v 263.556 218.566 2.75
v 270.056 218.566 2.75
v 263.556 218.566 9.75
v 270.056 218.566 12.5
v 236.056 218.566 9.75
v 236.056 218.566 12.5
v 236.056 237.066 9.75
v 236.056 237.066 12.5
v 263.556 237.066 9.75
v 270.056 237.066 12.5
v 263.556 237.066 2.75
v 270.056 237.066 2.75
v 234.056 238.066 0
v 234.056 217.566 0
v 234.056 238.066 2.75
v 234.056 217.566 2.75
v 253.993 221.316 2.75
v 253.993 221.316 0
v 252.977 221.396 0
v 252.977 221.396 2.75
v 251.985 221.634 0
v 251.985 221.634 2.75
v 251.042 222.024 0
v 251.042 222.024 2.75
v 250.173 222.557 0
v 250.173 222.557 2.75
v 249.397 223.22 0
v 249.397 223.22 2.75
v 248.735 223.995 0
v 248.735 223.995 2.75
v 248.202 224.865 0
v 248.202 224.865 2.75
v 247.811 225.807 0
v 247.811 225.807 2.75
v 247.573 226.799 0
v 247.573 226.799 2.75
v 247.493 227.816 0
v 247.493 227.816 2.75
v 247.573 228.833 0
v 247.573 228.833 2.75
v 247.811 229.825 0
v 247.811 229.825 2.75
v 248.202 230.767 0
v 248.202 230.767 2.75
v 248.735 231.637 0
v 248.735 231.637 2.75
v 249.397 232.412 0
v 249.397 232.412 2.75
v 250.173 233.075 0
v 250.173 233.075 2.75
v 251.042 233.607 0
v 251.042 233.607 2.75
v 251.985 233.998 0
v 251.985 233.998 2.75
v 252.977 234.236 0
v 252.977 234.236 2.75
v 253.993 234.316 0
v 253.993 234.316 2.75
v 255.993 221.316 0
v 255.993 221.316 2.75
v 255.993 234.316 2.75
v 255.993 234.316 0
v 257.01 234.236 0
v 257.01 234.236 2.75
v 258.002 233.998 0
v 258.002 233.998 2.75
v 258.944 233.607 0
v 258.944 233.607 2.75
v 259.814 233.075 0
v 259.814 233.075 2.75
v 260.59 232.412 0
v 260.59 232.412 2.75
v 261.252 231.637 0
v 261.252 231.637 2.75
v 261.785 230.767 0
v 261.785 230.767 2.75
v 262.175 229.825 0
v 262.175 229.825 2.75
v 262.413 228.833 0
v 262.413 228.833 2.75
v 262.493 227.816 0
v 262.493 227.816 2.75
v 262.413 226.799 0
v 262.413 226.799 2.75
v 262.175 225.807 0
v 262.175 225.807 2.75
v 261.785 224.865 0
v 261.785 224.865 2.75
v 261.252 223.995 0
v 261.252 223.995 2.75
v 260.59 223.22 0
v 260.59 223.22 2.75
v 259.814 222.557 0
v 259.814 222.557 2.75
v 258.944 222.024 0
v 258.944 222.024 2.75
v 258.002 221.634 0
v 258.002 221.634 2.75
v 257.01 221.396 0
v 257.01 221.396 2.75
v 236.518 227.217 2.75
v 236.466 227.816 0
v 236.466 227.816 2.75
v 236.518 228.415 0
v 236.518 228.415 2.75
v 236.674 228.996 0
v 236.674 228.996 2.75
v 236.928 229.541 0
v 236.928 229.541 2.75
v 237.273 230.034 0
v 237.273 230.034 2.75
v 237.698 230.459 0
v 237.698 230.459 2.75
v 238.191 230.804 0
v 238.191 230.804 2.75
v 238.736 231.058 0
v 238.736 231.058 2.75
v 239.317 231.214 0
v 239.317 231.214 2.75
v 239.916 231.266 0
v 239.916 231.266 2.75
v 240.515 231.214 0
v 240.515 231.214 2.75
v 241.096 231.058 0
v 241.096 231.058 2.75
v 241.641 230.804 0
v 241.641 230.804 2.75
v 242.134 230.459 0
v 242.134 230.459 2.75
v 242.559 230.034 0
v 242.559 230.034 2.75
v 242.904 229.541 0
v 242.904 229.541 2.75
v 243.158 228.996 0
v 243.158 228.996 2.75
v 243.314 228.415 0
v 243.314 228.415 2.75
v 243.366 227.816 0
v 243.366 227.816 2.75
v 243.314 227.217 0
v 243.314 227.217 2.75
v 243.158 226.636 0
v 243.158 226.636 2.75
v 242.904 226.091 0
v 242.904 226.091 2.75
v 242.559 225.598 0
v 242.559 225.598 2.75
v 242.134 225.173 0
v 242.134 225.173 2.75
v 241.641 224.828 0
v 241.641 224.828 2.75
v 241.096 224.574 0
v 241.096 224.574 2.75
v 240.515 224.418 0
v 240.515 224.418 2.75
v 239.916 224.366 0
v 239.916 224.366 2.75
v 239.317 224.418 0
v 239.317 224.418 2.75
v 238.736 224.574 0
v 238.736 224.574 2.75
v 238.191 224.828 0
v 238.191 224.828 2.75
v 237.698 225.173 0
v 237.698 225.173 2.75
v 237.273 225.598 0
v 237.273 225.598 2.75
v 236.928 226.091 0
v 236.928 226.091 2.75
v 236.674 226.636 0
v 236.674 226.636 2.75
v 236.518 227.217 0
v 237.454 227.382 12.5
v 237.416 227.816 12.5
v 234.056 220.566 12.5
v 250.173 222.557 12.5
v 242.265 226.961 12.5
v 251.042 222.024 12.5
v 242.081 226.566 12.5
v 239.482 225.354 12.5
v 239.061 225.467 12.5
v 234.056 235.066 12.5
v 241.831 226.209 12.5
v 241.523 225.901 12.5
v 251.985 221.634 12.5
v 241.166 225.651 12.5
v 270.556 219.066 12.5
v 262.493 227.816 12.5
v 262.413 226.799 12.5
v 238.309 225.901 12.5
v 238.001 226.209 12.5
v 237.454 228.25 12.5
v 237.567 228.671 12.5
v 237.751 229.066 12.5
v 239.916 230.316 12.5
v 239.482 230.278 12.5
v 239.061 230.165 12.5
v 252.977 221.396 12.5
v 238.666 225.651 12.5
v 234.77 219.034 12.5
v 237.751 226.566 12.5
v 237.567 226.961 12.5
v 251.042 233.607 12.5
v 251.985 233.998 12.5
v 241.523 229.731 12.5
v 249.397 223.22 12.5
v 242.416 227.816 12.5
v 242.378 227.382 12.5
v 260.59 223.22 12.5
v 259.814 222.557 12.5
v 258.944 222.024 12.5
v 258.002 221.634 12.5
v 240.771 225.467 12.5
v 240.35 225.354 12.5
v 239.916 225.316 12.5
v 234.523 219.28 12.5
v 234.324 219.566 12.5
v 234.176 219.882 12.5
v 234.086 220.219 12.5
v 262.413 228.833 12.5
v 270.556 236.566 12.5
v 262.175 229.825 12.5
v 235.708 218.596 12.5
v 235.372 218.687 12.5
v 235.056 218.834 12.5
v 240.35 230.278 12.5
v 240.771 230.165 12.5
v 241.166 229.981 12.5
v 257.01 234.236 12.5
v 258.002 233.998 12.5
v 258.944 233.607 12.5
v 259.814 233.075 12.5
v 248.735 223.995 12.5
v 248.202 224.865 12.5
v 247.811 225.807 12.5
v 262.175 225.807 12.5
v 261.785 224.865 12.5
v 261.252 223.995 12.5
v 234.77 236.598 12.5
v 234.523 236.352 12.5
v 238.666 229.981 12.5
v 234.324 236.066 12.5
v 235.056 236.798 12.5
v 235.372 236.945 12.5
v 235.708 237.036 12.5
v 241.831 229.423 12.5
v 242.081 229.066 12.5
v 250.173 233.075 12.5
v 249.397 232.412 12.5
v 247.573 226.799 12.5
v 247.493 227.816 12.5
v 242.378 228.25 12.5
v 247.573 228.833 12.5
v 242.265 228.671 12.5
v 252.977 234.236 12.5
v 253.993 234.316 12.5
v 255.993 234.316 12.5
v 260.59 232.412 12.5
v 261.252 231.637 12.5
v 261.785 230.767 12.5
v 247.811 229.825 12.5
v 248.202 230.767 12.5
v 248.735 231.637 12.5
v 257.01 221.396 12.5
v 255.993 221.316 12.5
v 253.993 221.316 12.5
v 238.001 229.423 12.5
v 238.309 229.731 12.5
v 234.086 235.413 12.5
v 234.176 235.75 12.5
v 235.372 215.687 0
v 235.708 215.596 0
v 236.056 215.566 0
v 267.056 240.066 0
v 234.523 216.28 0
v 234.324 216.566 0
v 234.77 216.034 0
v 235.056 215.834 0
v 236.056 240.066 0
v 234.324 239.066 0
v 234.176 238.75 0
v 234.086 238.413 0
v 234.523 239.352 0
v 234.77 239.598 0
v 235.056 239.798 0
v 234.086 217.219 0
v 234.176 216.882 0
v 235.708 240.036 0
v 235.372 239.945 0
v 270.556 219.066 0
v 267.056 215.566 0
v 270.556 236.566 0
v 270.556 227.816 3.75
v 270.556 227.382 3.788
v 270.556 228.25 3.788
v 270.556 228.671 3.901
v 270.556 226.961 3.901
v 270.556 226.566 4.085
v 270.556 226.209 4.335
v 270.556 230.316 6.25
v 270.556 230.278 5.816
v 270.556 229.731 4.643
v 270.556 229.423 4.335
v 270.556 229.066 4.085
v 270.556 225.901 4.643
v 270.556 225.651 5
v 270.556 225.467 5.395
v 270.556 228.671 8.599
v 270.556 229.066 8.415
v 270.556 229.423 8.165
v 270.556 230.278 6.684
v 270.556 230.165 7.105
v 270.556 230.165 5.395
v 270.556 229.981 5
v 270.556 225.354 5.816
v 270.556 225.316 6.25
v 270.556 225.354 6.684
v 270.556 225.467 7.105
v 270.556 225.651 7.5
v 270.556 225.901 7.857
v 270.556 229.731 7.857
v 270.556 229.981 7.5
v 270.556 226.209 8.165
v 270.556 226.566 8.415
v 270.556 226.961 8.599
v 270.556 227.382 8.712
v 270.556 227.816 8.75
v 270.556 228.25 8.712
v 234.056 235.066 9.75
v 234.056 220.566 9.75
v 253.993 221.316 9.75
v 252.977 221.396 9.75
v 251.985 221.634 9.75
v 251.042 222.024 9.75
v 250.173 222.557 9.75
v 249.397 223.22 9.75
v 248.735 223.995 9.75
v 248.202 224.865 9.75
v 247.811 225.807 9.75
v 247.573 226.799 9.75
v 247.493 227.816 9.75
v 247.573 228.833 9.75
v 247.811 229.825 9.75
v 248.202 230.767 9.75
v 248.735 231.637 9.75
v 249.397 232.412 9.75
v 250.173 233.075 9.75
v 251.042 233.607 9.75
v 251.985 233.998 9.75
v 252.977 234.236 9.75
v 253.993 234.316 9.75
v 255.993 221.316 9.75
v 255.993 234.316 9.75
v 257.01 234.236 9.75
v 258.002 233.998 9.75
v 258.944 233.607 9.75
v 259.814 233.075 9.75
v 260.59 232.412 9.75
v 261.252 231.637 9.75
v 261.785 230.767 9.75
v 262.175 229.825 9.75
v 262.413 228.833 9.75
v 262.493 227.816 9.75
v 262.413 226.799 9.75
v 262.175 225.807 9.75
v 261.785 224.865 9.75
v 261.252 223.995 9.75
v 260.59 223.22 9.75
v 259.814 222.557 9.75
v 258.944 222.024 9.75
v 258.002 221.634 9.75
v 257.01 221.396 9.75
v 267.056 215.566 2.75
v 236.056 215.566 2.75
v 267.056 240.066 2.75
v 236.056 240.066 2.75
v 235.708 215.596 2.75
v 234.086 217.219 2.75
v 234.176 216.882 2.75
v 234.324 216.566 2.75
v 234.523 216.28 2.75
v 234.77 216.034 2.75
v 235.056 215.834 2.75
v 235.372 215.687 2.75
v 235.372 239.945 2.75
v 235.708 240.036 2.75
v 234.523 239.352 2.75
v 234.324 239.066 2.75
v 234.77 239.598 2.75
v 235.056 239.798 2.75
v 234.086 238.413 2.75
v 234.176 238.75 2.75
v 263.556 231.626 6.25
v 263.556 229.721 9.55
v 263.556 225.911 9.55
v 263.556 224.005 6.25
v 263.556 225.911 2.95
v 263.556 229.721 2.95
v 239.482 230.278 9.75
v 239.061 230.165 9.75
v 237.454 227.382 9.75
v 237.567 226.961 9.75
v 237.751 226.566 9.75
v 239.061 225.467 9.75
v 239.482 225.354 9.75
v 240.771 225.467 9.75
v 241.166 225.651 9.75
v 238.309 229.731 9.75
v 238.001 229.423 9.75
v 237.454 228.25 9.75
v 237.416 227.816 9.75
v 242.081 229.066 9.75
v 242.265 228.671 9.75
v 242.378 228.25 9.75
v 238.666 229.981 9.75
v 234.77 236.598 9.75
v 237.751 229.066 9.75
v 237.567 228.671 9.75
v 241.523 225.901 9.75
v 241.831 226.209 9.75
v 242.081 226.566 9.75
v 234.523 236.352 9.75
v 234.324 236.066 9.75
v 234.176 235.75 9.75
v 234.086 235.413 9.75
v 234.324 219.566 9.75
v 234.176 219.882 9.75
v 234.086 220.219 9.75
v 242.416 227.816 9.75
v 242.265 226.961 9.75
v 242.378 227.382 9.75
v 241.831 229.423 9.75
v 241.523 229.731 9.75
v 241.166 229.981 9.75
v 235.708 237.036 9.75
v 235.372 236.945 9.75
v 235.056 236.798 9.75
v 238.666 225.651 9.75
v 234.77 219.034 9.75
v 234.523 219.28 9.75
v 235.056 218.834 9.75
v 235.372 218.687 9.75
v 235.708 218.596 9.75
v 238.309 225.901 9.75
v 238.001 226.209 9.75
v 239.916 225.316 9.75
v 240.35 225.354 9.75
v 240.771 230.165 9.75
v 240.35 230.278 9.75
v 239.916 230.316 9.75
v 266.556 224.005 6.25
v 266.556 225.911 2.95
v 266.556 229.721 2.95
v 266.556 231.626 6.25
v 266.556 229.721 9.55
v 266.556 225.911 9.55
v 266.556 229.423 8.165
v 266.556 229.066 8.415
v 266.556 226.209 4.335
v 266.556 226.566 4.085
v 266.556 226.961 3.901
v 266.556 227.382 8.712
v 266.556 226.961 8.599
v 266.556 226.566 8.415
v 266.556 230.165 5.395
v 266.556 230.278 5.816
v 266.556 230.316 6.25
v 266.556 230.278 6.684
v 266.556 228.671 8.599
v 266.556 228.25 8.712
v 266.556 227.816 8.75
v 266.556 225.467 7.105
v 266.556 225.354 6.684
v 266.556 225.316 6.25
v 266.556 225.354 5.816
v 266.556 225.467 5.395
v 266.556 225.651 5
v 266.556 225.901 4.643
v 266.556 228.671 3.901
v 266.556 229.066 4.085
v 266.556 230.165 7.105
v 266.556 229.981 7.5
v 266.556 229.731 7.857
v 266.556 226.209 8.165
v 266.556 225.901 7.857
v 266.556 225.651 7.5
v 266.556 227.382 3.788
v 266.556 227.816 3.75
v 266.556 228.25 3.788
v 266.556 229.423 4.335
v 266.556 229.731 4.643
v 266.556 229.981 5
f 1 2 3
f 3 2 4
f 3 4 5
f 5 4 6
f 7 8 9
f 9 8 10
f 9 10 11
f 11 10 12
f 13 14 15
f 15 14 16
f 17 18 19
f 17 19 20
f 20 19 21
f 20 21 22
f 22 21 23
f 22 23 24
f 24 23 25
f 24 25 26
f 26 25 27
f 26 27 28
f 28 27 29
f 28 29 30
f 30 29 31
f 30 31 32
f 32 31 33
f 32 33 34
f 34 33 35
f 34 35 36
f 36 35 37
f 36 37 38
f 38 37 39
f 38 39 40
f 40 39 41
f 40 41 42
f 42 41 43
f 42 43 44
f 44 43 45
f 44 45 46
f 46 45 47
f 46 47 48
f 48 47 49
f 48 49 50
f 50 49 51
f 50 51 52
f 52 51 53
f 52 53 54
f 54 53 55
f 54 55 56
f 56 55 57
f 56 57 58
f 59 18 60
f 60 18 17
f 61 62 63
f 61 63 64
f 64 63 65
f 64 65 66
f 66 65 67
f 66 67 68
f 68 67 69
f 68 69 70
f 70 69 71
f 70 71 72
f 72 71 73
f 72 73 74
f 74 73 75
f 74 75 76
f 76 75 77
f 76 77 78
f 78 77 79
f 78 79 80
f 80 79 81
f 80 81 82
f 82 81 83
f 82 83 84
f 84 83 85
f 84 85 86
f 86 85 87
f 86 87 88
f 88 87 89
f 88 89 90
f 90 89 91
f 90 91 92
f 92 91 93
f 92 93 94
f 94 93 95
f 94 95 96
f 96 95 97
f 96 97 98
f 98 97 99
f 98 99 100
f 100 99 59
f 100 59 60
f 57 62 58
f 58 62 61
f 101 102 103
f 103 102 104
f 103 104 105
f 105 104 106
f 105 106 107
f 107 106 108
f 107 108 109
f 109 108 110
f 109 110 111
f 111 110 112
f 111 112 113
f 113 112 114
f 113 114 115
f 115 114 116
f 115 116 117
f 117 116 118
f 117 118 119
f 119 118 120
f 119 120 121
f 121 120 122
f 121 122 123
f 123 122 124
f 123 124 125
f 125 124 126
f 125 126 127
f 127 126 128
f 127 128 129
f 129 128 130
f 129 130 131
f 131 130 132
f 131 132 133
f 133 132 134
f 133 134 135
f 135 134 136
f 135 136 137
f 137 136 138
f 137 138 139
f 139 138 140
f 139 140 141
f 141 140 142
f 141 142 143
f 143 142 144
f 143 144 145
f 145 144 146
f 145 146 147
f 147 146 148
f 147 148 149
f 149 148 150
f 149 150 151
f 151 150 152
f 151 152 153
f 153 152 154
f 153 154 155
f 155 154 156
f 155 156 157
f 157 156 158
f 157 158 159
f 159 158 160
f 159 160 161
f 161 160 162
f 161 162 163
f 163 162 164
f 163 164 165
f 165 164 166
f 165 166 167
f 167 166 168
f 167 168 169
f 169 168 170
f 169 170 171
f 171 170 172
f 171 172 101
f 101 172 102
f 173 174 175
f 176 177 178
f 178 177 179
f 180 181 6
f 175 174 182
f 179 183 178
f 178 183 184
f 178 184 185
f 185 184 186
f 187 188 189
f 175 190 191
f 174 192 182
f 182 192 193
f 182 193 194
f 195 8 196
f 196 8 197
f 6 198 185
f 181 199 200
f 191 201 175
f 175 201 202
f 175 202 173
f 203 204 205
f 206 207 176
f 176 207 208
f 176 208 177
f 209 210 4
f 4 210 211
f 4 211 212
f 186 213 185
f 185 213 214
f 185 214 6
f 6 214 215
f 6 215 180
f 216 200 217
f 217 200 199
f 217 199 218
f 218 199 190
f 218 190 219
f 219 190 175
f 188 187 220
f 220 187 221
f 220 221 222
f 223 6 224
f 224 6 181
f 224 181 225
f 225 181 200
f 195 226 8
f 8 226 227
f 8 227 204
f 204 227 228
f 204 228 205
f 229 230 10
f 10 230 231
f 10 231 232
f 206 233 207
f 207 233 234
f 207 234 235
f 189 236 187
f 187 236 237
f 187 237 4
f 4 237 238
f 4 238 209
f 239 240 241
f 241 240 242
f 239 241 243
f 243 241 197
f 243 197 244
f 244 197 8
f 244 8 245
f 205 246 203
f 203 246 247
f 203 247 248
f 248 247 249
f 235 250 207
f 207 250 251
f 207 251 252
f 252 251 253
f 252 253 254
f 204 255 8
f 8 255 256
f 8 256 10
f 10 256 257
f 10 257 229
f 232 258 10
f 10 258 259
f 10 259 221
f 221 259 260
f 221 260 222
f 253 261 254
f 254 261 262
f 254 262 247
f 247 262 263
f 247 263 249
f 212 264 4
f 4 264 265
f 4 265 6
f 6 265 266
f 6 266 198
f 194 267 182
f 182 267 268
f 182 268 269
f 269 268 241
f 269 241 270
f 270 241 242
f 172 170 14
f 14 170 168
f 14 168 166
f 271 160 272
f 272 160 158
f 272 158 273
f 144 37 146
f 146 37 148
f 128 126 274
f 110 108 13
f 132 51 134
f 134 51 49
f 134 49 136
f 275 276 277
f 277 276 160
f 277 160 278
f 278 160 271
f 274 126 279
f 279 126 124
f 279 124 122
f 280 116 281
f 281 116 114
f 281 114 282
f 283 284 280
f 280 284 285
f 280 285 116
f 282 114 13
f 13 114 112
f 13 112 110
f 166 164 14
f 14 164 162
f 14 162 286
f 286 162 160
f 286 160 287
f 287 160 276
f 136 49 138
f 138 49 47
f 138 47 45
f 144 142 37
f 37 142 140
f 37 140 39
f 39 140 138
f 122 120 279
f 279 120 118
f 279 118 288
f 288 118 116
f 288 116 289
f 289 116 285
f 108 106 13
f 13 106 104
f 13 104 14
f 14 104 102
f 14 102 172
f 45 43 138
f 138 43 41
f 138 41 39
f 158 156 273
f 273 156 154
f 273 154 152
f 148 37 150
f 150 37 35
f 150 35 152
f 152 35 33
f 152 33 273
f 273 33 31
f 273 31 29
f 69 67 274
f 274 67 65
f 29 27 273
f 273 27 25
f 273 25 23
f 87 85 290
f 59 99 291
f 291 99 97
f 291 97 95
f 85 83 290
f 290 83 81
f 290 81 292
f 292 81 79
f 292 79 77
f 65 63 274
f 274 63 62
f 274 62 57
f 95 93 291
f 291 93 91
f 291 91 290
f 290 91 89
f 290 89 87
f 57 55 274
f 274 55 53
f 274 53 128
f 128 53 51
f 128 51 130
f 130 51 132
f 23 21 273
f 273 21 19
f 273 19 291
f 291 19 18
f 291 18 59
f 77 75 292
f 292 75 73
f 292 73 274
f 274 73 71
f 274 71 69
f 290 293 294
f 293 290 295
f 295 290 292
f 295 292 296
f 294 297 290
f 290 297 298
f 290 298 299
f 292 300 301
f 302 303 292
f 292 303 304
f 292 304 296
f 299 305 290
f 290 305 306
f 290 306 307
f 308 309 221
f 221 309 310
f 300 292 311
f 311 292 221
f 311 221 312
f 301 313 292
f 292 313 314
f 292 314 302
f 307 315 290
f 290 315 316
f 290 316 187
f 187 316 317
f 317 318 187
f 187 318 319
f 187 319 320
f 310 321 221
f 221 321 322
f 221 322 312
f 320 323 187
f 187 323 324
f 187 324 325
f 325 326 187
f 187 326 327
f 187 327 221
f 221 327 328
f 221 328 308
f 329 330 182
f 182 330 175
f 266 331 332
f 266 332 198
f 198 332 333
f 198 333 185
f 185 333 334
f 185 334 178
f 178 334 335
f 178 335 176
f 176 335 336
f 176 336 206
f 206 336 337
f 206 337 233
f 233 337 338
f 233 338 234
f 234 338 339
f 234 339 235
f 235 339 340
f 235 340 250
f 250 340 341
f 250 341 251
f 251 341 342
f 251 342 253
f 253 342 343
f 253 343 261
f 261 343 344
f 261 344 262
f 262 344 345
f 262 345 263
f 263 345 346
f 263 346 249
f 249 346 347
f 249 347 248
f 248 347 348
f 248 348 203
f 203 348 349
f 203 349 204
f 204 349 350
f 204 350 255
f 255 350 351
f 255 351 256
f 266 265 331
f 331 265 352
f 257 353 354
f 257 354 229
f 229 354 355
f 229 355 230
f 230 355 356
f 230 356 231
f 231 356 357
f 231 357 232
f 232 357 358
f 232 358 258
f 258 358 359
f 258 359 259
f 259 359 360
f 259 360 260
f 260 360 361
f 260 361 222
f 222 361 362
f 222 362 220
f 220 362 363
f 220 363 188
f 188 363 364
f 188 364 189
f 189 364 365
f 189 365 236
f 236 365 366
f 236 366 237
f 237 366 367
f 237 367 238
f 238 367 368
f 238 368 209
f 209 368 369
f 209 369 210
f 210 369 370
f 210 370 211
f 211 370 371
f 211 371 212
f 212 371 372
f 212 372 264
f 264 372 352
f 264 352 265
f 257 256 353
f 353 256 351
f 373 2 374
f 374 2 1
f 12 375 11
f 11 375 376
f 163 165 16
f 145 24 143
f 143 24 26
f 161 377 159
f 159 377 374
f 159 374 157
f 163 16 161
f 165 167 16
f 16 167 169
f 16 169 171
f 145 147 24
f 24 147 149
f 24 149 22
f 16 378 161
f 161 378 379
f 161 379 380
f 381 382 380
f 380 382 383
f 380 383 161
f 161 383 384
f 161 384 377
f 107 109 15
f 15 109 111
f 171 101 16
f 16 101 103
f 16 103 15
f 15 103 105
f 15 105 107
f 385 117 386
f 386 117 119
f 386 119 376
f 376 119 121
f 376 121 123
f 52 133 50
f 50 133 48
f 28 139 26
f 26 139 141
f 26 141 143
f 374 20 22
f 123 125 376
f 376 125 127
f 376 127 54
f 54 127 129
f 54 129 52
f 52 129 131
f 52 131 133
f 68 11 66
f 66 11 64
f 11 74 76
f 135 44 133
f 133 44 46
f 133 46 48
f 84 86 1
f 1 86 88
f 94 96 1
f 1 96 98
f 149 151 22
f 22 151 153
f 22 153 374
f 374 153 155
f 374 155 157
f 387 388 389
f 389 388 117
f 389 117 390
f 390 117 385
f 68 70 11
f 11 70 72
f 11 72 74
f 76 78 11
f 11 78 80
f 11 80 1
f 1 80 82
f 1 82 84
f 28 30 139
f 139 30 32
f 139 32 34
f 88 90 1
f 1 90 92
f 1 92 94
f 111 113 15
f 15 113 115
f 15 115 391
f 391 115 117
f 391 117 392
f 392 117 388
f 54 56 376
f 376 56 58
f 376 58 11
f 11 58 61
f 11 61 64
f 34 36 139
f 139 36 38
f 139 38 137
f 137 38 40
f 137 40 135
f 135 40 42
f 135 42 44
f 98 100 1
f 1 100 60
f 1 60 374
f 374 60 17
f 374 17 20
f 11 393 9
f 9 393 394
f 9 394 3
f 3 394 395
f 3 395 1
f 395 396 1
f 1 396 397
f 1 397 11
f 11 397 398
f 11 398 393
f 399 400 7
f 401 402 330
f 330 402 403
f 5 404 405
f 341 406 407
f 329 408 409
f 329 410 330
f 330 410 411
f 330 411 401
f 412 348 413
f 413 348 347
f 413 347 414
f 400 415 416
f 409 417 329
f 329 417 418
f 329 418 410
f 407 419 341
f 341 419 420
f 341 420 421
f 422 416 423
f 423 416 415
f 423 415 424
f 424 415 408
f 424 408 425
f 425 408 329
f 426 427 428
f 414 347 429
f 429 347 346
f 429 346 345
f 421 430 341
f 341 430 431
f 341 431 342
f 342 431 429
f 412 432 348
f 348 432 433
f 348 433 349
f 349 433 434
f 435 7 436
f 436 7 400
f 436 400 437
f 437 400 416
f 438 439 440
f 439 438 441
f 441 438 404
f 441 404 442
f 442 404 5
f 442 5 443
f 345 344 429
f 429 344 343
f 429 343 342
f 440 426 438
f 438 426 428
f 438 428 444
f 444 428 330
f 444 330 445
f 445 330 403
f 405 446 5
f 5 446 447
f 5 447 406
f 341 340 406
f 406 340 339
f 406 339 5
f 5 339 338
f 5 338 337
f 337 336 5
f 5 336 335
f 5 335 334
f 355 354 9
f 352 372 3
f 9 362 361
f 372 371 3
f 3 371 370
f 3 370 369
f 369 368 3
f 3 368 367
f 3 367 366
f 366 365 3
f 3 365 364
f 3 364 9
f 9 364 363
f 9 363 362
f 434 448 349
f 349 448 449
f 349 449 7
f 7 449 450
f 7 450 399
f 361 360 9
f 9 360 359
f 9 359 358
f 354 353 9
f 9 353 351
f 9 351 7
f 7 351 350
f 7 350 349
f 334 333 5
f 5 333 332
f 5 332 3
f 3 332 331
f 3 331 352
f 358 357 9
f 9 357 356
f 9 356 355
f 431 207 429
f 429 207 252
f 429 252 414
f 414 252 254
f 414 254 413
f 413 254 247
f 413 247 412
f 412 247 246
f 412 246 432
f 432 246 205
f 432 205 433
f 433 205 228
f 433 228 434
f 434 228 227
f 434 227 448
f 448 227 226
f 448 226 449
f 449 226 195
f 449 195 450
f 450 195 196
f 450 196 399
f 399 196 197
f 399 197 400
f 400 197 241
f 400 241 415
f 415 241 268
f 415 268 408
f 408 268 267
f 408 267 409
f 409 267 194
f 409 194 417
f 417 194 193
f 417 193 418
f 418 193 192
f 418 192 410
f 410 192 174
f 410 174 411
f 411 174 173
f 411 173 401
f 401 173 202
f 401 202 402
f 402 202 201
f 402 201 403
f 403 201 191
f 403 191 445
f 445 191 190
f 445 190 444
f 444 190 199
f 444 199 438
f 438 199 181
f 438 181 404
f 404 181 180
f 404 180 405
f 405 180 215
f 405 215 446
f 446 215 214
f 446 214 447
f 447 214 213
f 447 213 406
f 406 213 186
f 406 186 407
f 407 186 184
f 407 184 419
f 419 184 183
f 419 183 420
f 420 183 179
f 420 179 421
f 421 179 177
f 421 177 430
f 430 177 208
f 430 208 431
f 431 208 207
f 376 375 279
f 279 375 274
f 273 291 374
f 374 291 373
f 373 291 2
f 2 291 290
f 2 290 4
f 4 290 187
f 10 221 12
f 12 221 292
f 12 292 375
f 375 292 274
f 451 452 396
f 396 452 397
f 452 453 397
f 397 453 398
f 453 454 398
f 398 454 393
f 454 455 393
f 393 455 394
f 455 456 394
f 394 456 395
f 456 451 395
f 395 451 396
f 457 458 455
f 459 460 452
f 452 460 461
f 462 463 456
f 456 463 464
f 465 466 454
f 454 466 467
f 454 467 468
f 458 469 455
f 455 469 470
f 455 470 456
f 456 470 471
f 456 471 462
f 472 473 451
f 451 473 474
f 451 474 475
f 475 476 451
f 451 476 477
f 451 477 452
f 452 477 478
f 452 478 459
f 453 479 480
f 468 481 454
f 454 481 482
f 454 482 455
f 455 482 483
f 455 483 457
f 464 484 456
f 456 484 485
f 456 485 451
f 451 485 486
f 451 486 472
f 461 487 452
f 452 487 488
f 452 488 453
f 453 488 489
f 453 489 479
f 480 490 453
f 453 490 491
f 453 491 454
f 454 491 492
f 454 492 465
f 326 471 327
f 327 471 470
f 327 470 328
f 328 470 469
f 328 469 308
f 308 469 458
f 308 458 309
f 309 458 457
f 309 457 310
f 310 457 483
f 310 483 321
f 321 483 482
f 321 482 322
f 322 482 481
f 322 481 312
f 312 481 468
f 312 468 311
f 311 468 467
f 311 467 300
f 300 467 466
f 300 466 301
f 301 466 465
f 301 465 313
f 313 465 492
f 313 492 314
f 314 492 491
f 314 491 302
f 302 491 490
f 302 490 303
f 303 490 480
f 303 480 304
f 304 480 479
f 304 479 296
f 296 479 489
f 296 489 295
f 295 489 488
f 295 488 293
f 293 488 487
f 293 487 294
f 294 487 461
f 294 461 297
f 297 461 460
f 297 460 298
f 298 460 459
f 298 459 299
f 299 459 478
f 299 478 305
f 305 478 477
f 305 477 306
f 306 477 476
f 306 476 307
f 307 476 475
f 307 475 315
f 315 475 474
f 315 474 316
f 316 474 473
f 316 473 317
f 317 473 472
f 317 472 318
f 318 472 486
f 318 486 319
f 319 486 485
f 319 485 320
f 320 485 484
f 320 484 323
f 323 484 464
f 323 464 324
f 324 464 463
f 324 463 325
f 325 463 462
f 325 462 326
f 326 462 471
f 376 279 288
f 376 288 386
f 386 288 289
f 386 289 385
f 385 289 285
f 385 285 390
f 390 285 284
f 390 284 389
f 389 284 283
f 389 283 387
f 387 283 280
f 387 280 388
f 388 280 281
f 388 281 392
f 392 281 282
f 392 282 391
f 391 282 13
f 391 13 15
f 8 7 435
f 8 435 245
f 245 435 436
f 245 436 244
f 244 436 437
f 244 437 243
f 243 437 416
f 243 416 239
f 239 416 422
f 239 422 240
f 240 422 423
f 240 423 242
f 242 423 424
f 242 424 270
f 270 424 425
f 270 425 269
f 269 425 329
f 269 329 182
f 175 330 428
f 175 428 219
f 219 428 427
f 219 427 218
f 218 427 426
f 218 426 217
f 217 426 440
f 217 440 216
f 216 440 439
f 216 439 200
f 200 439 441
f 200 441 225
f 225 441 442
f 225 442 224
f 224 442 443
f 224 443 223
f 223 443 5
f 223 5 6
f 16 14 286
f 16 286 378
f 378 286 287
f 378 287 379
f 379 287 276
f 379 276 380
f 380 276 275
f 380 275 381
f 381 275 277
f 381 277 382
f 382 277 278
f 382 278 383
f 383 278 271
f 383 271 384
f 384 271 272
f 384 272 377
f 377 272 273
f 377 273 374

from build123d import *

# Parameters (mm, degrees)
SKETCH1_W           = 36.5
SKETCH1_H           = 18.5
SKETCH1_R           = 3.45
BOSS_EXTRUDE1_DEPTH = 12.5
SKETCH2_W           = 29.5
SKETCH2_H           = 7
CUT_EXTRUDE1_DEPTH  = 19.5
SKETCH3_R           = 3.45
SKETCH3_R_2         = 2.5
BOSS_EXTRUDE3_DEPTH = 2.75
SKETCH4_W           = 36.5
SKETCH4_H           = 2.75
BOSS_EXTRUDE4_DEPTH = 3
SKETCH5_W           = 36.5
SKETCH5_H           = 2.75
BOSS_EXTRUDE5_DEPTH = 3
CHAMFER1_SIZE       = 3.5
CHAMFER3_SIZE       = 3.5
CUT_EXTRUDE2_DEPTH  = 3
SKETCH7_R           = 2.5
CUT_EXTRUDE3_DEPTH  = 5
FILLET1_R           = 2


with BuildPart() as part:
    # Sketch1 → Boss-Extrude1 (new body)
    with BuildSketch(Plane.XY):
        with Locations((252.305597075, 227.81595418)):
            Rectangle(SKETCH1_W, SKETCH1_H)
        with Locations((239.915979082, 227.815953297)):
            Circle(SKETCH1_R, mode=Mode.SUBTRACT)
        with BuildLine():
            Line((253.99332378, 221.31595418), (255.99332378, 221.31595418))
            ThreePointArc((255.99332378, 221.31595418), (262.49332378, 227.81595418), (255.99332378, 234.31595418))
            Line((255.99332378, 234.31595418), (253.99332378, 234.31595418))
            ThreePointArc((253.99332378, 234.31595418), (247.49332378, 227.81595418), (253.99332378, 221.31595418))
        make_face(mode=Mode.SUBTRACT)
    extrude(amount=BOSS_EXTRUDE1_DEPTH)

    # Sketch2 → Cut-Extrude1 (cut, through all)
    with BuildSketch(Plane(origin=(0, 237.06595418, 0), x_dir=(1, 0, 0), z_dir=(0, 1, 0))):
        with Locations((248.805597075, -6.25)):
            Rectangle(SKETCH2_W, SKETCH2_H)
    extrude(amount=-CUT_EXTRUDE1_DEPTH, mode=Mode.SUBTRACT)

    # Sketch3 → Boss-Extrude3 (add)
    with BuildSketch(Plane.XY.offset(12.5)):
        with Locations((239.915979082, 227.815953297)):
            Circle(SKETCH3_R)
        with Locations((239.915979082, 227.815953297)):
            Circle(SKETCH3_R_2, mode=Mode.SUBTRACT)
    extrude(amount=-BOSS_EXTRUDE3_DEPTH)

    # Sketch4 → Boss-Extrude4 (add)
    with BuildSketch(Plane(origin=(0, 237.06595418, 0), x_dir=(1, 0, 0), z_dir=(0, 1, 0))):
        with Locations((252.305597075, -1.375)):
            Rectangle(SKETCH4_W, SKETCH4_H)
    extrude(amount=BOSS_EXTRUDE4_DEPTH)

    # Sketch5 → Boss-Extrude5 (add)
    with BuildSketch(Plane.XZ.offset(-218.56595418)):
        with Locations((252.305597075, 1.375)):
            Rectangle(SKETCH5_W, SKETCH5_H)
    extrude(amount=BOSS_EXTRUDE5_DEPTH)

    # Chamfer1
    chamfer1_edges = [part.edges().sort_by_distance(p)[0] for p in [
        (270.555597075, 215.56595418, 1.375),
    ]]
    chamfer(chamfer1_edges, length=CHAMFER1_SIZE)

    # Chamfer3
    chamfer3_edges = [part.edges().sort_by_distance(p)[0] for p in [
        (270.555597075, 240.06595418, 1.375),
    ]]
    chamfer(chamfer3_edges, length=CHAMFER3_SIZE)

    # Sketch6 → Cut-Extrude2 (cut)
    with BuildSketch(Plane.ZY.offset(-263.555597075)):
        Polygon((6.25, 224.005442403), (9.55, 225.910698292), (9.55, 229.721210068), (6.25, 231.626465957), (2.95, 229.721210068), (2.95, 225.910698292), align=None)
    extrude(amount=-CUT_EXTRUDE2_DEPTH, mode=Mode.SUBTRACT)

    # Sketch7 → Cut-Extrude3 (cut, through all)
    with BuildSketch(Plane.ZY.offset(-266.555597075)):
        with Locations((6.25, 227.81595418)):
            Circle(SKETCH7_R)
    extrude(amount=-CUT_EXTRUDE3_DEPTH, mode=Mode.SUBTRACT)

    # Fillet1
    fillet1_edges = [part.edges().sort_by_distance(p)[0] for p in [
        (234.055597075, 240.06595418, 1.375),
        (234.055597075, 218.56595418, 11.125),
        (234.055597075, 237.06595418, 11.125),
        (234.055597075, 215.56595418, 1.375),
    ]]
    fillet(fillet1_edges, radius=FILLET1_R)


solid = part.part
